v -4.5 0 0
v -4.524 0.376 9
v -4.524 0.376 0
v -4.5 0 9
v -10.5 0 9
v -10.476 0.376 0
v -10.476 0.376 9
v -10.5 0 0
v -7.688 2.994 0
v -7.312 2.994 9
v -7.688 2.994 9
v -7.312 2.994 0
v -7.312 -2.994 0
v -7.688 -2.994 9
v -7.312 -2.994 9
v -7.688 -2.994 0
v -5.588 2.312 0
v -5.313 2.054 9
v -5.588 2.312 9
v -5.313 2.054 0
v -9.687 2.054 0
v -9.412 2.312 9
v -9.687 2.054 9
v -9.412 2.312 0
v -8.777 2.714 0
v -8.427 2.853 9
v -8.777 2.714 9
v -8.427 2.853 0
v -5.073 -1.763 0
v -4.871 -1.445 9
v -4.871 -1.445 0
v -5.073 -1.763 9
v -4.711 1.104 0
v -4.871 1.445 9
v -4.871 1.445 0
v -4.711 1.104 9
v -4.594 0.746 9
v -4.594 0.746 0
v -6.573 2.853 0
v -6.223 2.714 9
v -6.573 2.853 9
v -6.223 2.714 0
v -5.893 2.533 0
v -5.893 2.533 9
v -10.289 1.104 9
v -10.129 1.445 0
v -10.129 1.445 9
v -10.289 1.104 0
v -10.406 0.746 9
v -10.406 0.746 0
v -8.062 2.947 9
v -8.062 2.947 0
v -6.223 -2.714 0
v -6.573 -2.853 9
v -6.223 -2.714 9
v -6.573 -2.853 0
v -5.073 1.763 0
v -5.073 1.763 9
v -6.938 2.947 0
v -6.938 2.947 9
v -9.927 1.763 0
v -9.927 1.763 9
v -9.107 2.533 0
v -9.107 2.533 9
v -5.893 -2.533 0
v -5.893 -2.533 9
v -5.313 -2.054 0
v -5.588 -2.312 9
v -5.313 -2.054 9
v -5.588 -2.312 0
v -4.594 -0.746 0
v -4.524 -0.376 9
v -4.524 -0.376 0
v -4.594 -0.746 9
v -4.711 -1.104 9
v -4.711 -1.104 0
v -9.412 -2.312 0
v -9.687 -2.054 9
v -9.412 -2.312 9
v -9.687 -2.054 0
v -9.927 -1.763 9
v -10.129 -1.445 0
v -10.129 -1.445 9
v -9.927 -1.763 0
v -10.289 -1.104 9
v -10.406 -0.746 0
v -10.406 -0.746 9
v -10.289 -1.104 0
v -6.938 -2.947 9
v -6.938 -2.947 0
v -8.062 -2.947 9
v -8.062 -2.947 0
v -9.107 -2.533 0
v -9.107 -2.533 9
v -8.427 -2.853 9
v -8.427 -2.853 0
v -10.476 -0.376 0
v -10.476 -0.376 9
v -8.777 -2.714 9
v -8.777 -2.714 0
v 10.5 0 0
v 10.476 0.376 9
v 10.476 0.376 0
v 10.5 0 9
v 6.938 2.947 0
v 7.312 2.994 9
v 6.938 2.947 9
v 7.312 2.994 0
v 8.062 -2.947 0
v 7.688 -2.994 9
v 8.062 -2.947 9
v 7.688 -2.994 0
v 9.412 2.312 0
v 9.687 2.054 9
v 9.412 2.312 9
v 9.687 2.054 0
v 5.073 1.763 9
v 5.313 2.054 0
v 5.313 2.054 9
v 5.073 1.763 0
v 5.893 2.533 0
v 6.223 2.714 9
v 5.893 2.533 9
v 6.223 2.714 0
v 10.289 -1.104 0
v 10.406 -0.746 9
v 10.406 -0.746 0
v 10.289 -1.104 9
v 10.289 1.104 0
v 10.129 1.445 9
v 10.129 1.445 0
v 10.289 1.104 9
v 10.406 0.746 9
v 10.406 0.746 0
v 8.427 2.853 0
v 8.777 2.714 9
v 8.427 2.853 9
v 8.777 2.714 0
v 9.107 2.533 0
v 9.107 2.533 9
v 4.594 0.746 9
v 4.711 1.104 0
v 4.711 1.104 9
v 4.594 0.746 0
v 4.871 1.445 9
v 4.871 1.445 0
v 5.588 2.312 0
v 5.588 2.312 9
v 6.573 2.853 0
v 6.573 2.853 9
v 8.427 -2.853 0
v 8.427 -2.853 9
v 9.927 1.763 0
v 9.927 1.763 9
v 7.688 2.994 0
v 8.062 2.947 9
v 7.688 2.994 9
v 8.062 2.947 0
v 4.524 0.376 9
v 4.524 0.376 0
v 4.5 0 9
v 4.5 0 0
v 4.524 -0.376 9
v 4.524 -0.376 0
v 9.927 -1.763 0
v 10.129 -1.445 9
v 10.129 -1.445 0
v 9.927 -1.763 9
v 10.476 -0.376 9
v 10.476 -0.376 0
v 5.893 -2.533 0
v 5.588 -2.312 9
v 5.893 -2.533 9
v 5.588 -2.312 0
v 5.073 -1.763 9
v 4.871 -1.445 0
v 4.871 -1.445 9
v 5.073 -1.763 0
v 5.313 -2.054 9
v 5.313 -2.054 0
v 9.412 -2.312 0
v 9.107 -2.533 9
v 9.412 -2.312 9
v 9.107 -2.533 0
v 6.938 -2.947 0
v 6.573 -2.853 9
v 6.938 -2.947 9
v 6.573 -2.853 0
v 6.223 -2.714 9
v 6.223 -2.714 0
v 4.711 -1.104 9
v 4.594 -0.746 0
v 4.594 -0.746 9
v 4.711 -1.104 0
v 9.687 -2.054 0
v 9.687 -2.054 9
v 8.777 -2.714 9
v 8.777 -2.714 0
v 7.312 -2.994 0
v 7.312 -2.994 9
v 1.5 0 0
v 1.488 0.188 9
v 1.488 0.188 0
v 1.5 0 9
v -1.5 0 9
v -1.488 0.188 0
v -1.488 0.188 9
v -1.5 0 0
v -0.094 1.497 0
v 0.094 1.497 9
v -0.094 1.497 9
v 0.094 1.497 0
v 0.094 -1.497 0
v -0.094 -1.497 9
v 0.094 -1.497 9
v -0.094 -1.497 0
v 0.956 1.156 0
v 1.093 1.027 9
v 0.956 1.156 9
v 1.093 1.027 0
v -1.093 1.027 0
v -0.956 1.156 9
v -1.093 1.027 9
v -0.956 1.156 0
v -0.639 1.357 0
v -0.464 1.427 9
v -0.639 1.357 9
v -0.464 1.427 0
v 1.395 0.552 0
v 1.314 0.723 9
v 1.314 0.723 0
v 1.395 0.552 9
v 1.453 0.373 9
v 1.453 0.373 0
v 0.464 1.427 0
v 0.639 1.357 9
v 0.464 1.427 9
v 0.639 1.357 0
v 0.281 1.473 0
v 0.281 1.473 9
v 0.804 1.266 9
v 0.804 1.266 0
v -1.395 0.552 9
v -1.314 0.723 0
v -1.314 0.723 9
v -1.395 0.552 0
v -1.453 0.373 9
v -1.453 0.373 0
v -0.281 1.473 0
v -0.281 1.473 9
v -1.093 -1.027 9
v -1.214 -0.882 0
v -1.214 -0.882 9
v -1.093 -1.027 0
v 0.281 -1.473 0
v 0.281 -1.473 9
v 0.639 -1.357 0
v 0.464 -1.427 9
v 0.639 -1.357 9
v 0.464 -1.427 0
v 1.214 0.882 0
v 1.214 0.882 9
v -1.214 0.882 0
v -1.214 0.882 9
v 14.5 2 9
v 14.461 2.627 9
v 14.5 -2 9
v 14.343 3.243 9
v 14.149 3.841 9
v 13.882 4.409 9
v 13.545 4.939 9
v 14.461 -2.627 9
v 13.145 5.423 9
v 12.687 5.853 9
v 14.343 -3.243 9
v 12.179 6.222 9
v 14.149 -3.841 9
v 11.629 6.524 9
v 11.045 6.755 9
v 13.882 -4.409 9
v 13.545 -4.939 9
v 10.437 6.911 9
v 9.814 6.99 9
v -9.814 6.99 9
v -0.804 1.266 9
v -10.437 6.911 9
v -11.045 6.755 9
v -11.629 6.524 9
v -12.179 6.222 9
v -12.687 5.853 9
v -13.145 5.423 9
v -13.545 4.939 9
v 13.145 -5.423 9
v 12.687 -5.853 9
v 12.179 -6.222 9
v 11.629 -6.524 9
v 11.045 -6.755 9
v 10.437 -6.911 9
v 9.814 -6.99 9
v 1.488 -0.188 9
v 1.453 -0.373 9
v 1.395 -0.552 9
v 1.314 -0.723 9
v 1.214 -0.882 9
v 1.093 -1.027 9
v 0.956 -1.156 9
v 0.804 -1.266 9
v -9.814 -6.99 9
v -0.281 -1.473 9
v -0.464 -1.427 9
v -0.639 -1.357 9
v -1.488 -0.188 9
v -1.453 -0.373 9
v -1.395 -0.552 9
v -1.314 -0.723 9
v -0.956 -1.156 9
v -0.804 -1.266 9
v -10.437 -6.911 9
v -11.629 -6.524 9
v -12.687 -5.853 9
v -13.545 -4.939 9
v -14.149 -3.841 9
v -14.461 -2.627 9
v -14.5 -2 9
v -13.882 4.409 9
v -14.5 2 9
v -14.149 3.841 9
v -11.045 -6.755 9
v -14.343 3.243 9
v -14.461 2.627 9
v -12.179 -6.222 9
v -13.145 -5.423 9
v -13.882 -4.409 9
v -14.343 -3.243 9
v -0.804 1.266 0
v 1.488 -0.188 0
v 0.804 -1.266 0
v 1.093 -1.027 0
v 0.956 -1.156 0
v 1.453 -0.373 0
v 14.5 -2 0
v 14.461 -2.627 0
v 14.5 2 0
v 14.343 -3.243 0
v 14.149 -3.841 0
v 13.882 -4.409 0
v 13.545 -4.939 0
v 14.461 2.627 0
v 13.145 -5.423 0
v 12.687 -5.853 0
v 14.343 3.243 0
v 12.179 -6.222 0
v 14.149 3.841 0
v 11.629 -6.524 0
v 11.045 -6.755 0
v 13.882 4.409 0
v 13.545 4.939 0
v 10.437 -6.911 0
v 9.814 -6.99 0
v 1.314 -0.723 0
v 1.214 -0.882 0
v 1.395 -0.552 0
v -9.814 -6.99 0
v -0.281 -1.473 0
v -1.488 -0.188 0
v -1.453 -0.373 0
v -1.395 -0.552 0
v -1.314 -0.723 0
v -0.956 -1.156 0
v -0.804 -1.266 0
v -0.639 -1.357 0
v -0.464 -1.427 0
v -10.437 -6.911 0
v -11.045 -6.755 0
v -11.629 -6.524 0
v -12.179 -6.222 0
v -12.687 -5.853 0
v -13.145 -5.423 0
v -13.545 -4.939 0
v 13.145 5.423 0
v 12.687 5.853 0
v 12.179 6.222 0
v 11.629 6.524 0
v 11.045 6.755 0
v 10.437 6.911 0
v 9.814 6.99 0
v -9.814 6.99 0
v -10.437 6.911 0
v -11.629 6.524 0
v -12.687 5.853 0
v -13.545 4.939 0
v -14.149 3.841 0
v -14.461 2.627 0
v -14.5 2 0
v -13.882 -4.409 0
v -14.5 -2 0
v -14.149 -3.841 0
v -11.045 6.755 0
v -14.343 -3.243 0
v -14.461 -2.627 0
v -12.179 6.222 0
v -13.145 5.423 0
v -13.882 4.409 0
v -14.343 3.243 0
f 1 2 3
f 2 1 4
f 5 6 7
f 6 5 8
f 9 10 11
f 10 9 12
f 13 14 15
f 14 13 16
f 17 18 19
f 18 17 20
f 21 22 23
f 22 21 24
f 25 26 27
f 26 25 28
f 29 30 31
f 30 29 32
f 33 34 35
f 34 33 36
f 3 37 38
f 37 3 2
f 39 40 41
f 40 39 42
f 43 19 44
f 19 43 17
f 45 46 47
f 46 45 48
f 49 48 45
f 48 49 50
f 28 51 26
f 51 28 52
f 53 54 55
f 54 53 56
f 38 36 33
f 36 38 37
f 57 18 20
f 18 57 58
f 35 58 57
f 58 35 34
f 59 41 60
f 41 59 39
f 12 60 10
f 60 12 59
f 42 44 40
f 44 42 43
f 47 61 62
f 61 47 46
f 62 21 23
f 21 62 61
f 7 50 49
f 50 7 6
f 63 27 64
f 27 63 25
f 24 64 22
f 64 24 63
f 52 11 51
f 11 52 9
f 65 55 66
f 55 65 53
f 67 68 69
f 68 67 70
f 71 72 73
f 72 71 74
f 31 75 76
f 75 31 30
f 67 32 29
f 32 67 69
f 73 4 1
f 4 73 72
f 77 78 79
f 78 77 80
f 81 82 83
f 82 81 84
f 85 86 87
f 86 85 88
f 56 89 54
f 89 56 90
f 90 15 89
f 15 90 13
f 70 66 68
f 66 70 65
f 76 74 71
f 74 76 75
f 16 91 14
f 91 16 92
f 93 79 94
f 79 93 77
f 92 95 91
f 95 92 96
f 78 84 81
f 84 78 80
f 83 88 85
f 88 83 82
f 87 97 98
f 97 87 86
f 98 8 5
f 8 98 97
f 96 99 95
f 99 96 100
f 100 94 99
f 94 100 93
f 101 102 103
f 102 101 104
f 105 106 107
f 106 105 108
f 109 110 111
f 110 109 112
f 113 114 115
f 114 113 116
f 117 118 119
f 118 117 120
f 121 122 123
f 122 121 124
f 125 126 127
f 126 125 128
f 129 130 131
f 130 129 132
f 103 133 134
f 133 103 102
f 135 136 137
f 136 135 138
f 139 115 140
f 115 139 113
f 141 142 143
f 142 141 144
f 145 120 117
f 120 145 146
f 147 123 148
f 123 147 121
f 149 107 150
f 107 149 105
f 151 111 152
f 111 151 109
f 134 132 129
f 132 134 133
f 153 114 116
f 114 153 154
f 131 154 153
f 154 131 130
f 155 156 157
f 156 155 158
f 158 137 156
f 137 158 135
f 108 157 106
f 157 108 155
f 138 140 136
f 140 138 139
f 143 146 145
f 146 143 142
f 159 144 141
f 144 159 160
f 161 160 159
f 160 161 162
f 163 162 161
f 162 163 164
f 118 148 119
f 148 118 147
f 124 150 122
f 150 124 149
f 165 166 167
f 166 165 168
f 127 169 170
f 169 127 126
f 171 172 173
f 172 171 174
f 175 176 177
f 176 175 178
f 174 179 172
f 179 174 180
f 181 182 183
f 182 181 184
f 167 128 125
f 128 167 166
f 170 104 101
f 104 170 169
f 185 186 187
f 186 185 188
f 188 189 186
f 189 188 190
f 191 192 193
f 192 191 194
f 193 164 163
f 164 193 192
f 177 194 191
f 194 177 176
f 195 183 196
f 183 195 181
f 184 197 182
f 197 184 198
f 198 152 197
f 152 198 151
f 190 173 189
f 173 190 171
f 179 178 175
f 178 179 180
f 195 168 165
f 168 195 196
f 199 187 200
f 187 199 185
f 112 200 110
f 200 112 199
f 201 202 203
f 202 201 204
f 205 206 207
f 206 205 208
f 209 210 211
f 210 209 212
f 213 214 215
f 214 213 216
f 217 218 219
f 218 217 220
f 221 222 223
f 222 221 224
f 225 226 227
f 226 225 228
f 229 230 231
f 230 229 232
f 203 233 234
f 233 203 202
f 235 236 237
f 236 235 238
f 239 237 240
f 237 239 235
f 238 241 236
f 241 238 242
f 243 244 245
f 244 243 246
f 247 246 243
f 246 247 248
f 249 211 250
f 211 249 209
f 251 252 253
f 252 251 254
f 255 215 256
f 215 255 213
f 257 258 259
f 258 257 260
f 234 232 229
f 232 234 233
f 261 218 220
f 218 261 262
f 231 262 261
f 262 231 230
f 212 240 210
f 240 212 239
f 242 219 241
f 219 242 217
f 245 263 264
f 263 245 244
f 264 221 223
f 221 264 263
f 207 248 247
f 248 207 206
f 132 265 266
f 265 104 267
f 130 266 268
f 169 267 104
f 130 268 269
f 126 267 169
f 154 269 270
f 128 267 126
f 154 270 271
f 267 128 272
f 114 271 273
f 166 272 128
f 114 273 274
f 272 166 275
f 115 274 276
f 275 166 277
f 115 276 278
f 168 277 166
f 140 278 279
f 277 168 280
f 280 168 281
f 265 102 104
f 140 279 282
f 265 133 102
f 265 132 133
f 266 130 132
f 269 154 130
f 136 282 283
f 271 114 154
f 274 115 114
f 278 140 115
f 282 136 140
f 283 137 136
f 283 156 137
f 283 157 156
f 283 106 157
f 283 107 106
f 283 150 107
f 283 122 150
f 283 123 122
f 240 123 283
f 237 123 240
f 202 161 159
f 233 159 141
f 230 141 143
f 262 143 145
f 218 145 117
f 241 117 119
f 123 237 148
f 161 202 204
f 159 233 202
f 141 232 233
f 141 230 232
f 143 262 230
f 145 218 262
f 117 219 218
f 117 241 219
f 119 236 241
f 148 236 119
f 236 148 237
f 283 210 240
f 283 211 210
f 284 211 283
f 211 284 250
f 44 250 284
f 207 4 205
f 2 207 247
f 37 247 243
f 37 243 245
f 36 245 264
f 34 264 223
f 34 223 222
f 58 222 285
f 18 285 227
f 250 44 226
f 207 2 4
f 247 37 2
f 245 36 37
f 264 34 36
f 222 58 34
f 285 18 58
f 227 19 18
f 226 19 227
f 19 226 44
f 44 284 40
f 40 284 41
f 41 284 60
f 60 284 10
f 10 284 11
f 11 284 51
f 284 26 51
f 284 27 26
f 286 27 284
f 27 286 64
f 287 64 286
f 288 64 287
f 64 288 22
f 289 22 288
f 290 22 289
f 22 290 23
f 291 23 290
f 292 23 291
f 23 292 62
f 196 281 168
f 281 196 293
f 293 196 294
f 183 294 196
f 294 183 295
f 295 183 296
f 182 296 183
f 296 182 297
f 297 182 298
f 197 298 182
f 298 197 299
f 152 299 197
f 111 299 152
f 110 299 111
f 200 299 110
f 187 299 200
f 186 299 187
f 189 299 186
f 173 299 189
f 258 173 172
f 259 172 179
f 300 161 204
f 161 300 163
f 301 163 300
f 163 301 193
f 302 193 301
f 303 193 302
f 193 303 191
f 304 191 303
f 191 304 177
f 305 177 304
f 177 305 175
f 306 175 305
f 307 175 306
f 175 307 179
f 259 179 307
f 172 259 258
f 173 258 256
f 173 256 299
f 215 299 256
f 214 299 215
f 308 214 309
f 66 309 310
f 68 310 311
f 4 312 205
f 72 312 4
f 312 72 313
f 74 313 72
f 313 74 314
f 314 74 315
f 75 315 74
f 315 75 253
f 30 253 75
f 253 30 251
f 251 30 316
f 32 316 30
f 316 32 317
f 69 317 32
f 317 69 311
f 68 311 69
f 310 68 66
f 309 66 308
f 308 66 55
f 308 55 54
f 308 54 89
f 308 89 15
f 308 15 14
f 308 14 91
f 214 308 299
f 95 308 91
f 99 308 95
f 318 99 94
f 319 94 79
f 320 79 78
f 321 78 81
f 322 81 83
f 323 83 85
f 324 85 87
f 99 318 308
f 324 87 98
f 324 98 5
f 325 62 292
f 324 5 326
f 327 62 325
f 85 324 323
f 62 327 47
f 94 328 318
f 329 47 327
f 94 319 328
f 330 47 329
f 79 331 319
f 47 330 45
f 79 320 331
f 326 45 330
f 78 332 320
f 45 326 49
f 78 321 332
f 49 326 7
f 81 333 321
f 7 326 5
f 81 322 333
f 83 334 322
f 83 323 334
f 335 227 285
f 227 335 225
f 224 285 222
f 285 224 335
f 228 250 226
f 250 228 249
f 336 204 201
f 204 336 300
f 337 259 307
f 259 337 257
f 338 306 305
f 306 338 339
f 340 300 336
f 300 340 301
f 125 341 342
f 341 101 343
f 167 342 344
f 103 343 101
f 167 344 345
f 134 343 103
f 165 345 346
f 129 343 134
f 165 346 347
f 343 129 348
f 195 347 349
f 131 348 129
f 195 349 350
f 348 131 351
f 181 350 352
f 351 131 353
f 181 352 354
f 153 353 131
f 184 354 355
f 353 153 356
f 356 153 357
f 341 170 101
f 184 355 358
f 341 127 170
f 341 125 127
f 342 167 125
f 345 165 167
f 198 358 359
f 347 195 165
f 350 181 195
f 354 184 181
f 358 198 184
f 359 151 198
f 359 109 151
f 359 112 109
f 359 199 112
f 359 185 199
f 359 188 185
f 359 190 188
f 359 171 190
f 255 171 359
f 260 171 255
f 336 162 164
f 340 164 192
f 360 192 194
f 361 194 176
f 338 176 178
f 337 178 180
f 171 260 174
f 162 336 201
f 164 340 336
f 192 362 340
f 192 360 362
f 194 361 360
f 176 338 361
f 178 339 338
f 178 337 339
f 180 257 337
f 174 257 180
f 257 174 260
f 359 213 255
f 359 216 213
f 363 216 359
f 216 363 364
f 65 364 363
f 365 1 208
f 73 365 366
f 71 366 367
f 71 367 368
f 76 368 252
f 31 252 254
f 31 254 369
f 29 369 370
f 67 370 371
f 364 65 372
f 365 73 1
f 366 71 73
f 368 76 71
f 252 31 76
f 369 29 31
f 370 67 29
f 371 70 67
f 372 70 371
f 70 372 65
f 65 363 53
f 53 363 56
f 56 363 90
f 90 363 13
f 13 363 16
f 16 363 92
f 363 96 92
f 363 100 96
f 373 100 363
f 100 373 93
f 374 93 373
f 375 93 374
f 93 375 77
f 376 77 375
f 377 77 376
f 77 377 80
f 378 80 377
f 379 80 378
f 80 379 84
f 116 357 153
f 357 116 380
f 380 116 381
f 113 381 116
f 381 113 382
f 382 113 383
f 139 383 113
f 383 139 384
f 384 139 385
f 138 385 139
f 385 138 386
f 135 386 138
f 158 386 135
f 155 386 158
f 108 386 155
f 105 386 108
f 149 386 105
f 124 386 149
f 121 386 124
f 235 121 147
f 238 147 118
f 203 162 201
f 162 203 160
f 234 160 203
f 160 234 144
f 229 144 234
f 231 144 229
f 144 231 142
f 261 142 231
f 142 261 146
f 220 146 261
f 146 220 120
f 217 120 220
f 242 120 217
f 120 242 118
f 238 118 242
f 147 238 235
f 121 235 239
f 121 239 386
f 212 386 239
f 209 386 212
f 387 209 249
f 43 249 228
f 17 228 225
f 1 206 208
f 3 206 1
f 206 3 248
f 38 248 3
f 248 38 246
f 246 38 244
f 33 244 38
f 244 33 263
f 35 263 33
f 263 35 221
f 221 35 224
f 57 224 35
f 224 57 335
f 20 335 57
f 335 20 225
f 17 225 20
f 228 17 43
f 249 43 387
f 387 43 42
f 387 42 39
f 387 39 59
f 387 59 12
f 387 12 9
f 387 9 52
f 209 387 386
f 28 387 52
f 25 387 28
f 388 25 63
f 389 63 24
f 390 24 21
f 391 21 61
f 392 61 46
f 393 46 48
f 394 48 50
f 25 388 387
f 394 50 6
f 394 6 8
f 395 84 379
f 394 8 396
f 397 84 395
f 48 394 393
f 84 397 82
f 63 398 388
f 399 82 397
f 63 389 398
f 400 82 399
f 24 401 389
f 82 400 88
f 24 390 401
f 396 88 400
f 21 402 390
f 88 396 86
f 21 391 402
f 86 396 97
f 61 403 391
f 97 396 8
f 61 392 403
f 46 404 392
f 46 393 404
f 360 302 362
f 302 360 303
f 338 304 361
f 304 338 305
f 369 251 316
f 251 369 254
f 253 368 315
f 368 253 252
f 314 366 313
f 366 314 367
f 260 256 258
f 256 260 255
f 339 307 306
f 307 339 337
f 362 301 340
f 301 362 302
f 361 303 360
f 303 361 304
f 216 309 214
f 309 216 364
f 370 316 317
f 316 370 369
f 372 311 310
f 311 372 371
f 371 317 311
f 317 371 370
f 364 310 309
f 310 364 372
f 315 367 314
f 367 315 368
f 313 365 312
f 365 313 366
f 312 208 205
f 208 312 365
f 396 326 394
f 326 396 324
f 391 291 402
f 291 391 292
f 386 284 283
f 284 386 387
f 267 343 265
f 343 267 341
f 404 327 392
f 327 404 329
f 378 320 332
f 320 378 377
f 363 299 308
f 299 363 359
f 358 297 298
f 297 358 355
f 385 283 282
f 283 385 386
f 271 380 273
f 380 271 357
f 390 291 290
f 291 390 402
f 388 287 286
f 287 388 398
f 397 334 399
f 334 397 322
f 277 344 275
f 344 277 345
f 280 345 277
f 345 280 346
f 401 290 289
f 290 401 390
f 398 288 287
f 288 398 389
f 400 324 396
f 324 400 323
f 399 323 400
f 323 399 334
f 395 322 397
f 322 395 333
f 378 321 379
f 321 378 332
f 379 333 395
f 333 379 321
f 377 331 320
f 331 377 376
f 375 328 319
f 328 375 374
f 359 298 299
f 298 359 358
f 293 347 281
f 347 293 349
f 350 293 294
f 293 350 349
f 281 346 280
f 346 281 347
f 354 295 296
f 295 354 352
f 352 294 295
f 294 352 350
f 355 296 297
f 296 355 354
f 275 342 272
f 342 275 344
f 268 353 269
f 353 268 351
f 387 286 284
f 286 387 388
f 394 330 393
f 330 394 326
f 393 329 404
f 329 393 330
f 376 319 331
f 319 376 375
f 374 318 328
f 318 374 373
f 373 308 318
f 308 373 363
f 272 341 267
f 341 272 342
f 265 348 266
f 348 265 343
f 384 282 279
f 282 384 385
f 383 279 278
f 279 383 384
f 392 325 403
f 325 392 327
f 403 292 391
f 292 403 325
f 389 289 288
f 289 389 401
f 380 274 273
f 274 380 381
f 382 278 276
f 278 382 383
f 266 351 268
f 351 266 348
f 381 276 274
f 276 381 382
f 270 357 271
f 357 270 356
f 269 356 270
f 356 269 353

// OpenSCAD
$fn = 50;


difference() {
	union() {
		hull() {
			translate(v = [-9.5000000000, 2.0000000000, 0]) {
				cylinder(h = 9, r = 5);
			}
			translate(v = [9.5000000000, 2.0000000000, 0]) {
				cylinder(h = 9, r = 5);
			}
			translate(v = [-9.5000000000, -2.0000000000, 0]) {
				cylinder(h = 9, r = 5);
			}
			translate(v = [9.5000000000, -2.0000000000, 0]) {
				cylinder(h = 9, r = 5);
			}
		}
	}
	union() {
		translate(v = [-7.5000000000, 0.0000000000, -100.0000000000]) {
			cylinder(h = 200, r = 3.0000000000);
		}
		translate(v = [7.5000000000, 0.0000000000, -100.0000000000]) {
			cylinder(h = 200, r = 3.0000000000);
		}
		translate(v = [-7.5000000000, 0.0000000000, 0]) {
			cylinder(h = 9, r = 1.5000000000);
		}
		cylinder(h = 9, r = 1.5000000000);
		translate(v = [7.5000000000, 0.0000000000, 0]) {
			cylinder(h = 9, r = 1.5000000000);
		}
		translate(v = [-7.5000000000, 0.0000000000, 0]) {
			cylinder(h = 9, r = 1.5000000000);
		}
		cylinder(h = 9, r = 1.5000000000);
		translate(v = [7.5000000000, 0.0000000000, 0]) {
			cylinder(h = 9, r = 1.5000000000);
		}
		translate(v = [-7.5000000000, 0.0000000000, 0]) {
			cylinder(h = 9, r = 1.5000000000);
		}
		cylinder(h = 9, r = 1.5000000000);
		translate(v = [7.5000000000, 0.0000000000, 0]) {
			cylinder(h = 9, r = 1.5000000000);
		}
	}
}
